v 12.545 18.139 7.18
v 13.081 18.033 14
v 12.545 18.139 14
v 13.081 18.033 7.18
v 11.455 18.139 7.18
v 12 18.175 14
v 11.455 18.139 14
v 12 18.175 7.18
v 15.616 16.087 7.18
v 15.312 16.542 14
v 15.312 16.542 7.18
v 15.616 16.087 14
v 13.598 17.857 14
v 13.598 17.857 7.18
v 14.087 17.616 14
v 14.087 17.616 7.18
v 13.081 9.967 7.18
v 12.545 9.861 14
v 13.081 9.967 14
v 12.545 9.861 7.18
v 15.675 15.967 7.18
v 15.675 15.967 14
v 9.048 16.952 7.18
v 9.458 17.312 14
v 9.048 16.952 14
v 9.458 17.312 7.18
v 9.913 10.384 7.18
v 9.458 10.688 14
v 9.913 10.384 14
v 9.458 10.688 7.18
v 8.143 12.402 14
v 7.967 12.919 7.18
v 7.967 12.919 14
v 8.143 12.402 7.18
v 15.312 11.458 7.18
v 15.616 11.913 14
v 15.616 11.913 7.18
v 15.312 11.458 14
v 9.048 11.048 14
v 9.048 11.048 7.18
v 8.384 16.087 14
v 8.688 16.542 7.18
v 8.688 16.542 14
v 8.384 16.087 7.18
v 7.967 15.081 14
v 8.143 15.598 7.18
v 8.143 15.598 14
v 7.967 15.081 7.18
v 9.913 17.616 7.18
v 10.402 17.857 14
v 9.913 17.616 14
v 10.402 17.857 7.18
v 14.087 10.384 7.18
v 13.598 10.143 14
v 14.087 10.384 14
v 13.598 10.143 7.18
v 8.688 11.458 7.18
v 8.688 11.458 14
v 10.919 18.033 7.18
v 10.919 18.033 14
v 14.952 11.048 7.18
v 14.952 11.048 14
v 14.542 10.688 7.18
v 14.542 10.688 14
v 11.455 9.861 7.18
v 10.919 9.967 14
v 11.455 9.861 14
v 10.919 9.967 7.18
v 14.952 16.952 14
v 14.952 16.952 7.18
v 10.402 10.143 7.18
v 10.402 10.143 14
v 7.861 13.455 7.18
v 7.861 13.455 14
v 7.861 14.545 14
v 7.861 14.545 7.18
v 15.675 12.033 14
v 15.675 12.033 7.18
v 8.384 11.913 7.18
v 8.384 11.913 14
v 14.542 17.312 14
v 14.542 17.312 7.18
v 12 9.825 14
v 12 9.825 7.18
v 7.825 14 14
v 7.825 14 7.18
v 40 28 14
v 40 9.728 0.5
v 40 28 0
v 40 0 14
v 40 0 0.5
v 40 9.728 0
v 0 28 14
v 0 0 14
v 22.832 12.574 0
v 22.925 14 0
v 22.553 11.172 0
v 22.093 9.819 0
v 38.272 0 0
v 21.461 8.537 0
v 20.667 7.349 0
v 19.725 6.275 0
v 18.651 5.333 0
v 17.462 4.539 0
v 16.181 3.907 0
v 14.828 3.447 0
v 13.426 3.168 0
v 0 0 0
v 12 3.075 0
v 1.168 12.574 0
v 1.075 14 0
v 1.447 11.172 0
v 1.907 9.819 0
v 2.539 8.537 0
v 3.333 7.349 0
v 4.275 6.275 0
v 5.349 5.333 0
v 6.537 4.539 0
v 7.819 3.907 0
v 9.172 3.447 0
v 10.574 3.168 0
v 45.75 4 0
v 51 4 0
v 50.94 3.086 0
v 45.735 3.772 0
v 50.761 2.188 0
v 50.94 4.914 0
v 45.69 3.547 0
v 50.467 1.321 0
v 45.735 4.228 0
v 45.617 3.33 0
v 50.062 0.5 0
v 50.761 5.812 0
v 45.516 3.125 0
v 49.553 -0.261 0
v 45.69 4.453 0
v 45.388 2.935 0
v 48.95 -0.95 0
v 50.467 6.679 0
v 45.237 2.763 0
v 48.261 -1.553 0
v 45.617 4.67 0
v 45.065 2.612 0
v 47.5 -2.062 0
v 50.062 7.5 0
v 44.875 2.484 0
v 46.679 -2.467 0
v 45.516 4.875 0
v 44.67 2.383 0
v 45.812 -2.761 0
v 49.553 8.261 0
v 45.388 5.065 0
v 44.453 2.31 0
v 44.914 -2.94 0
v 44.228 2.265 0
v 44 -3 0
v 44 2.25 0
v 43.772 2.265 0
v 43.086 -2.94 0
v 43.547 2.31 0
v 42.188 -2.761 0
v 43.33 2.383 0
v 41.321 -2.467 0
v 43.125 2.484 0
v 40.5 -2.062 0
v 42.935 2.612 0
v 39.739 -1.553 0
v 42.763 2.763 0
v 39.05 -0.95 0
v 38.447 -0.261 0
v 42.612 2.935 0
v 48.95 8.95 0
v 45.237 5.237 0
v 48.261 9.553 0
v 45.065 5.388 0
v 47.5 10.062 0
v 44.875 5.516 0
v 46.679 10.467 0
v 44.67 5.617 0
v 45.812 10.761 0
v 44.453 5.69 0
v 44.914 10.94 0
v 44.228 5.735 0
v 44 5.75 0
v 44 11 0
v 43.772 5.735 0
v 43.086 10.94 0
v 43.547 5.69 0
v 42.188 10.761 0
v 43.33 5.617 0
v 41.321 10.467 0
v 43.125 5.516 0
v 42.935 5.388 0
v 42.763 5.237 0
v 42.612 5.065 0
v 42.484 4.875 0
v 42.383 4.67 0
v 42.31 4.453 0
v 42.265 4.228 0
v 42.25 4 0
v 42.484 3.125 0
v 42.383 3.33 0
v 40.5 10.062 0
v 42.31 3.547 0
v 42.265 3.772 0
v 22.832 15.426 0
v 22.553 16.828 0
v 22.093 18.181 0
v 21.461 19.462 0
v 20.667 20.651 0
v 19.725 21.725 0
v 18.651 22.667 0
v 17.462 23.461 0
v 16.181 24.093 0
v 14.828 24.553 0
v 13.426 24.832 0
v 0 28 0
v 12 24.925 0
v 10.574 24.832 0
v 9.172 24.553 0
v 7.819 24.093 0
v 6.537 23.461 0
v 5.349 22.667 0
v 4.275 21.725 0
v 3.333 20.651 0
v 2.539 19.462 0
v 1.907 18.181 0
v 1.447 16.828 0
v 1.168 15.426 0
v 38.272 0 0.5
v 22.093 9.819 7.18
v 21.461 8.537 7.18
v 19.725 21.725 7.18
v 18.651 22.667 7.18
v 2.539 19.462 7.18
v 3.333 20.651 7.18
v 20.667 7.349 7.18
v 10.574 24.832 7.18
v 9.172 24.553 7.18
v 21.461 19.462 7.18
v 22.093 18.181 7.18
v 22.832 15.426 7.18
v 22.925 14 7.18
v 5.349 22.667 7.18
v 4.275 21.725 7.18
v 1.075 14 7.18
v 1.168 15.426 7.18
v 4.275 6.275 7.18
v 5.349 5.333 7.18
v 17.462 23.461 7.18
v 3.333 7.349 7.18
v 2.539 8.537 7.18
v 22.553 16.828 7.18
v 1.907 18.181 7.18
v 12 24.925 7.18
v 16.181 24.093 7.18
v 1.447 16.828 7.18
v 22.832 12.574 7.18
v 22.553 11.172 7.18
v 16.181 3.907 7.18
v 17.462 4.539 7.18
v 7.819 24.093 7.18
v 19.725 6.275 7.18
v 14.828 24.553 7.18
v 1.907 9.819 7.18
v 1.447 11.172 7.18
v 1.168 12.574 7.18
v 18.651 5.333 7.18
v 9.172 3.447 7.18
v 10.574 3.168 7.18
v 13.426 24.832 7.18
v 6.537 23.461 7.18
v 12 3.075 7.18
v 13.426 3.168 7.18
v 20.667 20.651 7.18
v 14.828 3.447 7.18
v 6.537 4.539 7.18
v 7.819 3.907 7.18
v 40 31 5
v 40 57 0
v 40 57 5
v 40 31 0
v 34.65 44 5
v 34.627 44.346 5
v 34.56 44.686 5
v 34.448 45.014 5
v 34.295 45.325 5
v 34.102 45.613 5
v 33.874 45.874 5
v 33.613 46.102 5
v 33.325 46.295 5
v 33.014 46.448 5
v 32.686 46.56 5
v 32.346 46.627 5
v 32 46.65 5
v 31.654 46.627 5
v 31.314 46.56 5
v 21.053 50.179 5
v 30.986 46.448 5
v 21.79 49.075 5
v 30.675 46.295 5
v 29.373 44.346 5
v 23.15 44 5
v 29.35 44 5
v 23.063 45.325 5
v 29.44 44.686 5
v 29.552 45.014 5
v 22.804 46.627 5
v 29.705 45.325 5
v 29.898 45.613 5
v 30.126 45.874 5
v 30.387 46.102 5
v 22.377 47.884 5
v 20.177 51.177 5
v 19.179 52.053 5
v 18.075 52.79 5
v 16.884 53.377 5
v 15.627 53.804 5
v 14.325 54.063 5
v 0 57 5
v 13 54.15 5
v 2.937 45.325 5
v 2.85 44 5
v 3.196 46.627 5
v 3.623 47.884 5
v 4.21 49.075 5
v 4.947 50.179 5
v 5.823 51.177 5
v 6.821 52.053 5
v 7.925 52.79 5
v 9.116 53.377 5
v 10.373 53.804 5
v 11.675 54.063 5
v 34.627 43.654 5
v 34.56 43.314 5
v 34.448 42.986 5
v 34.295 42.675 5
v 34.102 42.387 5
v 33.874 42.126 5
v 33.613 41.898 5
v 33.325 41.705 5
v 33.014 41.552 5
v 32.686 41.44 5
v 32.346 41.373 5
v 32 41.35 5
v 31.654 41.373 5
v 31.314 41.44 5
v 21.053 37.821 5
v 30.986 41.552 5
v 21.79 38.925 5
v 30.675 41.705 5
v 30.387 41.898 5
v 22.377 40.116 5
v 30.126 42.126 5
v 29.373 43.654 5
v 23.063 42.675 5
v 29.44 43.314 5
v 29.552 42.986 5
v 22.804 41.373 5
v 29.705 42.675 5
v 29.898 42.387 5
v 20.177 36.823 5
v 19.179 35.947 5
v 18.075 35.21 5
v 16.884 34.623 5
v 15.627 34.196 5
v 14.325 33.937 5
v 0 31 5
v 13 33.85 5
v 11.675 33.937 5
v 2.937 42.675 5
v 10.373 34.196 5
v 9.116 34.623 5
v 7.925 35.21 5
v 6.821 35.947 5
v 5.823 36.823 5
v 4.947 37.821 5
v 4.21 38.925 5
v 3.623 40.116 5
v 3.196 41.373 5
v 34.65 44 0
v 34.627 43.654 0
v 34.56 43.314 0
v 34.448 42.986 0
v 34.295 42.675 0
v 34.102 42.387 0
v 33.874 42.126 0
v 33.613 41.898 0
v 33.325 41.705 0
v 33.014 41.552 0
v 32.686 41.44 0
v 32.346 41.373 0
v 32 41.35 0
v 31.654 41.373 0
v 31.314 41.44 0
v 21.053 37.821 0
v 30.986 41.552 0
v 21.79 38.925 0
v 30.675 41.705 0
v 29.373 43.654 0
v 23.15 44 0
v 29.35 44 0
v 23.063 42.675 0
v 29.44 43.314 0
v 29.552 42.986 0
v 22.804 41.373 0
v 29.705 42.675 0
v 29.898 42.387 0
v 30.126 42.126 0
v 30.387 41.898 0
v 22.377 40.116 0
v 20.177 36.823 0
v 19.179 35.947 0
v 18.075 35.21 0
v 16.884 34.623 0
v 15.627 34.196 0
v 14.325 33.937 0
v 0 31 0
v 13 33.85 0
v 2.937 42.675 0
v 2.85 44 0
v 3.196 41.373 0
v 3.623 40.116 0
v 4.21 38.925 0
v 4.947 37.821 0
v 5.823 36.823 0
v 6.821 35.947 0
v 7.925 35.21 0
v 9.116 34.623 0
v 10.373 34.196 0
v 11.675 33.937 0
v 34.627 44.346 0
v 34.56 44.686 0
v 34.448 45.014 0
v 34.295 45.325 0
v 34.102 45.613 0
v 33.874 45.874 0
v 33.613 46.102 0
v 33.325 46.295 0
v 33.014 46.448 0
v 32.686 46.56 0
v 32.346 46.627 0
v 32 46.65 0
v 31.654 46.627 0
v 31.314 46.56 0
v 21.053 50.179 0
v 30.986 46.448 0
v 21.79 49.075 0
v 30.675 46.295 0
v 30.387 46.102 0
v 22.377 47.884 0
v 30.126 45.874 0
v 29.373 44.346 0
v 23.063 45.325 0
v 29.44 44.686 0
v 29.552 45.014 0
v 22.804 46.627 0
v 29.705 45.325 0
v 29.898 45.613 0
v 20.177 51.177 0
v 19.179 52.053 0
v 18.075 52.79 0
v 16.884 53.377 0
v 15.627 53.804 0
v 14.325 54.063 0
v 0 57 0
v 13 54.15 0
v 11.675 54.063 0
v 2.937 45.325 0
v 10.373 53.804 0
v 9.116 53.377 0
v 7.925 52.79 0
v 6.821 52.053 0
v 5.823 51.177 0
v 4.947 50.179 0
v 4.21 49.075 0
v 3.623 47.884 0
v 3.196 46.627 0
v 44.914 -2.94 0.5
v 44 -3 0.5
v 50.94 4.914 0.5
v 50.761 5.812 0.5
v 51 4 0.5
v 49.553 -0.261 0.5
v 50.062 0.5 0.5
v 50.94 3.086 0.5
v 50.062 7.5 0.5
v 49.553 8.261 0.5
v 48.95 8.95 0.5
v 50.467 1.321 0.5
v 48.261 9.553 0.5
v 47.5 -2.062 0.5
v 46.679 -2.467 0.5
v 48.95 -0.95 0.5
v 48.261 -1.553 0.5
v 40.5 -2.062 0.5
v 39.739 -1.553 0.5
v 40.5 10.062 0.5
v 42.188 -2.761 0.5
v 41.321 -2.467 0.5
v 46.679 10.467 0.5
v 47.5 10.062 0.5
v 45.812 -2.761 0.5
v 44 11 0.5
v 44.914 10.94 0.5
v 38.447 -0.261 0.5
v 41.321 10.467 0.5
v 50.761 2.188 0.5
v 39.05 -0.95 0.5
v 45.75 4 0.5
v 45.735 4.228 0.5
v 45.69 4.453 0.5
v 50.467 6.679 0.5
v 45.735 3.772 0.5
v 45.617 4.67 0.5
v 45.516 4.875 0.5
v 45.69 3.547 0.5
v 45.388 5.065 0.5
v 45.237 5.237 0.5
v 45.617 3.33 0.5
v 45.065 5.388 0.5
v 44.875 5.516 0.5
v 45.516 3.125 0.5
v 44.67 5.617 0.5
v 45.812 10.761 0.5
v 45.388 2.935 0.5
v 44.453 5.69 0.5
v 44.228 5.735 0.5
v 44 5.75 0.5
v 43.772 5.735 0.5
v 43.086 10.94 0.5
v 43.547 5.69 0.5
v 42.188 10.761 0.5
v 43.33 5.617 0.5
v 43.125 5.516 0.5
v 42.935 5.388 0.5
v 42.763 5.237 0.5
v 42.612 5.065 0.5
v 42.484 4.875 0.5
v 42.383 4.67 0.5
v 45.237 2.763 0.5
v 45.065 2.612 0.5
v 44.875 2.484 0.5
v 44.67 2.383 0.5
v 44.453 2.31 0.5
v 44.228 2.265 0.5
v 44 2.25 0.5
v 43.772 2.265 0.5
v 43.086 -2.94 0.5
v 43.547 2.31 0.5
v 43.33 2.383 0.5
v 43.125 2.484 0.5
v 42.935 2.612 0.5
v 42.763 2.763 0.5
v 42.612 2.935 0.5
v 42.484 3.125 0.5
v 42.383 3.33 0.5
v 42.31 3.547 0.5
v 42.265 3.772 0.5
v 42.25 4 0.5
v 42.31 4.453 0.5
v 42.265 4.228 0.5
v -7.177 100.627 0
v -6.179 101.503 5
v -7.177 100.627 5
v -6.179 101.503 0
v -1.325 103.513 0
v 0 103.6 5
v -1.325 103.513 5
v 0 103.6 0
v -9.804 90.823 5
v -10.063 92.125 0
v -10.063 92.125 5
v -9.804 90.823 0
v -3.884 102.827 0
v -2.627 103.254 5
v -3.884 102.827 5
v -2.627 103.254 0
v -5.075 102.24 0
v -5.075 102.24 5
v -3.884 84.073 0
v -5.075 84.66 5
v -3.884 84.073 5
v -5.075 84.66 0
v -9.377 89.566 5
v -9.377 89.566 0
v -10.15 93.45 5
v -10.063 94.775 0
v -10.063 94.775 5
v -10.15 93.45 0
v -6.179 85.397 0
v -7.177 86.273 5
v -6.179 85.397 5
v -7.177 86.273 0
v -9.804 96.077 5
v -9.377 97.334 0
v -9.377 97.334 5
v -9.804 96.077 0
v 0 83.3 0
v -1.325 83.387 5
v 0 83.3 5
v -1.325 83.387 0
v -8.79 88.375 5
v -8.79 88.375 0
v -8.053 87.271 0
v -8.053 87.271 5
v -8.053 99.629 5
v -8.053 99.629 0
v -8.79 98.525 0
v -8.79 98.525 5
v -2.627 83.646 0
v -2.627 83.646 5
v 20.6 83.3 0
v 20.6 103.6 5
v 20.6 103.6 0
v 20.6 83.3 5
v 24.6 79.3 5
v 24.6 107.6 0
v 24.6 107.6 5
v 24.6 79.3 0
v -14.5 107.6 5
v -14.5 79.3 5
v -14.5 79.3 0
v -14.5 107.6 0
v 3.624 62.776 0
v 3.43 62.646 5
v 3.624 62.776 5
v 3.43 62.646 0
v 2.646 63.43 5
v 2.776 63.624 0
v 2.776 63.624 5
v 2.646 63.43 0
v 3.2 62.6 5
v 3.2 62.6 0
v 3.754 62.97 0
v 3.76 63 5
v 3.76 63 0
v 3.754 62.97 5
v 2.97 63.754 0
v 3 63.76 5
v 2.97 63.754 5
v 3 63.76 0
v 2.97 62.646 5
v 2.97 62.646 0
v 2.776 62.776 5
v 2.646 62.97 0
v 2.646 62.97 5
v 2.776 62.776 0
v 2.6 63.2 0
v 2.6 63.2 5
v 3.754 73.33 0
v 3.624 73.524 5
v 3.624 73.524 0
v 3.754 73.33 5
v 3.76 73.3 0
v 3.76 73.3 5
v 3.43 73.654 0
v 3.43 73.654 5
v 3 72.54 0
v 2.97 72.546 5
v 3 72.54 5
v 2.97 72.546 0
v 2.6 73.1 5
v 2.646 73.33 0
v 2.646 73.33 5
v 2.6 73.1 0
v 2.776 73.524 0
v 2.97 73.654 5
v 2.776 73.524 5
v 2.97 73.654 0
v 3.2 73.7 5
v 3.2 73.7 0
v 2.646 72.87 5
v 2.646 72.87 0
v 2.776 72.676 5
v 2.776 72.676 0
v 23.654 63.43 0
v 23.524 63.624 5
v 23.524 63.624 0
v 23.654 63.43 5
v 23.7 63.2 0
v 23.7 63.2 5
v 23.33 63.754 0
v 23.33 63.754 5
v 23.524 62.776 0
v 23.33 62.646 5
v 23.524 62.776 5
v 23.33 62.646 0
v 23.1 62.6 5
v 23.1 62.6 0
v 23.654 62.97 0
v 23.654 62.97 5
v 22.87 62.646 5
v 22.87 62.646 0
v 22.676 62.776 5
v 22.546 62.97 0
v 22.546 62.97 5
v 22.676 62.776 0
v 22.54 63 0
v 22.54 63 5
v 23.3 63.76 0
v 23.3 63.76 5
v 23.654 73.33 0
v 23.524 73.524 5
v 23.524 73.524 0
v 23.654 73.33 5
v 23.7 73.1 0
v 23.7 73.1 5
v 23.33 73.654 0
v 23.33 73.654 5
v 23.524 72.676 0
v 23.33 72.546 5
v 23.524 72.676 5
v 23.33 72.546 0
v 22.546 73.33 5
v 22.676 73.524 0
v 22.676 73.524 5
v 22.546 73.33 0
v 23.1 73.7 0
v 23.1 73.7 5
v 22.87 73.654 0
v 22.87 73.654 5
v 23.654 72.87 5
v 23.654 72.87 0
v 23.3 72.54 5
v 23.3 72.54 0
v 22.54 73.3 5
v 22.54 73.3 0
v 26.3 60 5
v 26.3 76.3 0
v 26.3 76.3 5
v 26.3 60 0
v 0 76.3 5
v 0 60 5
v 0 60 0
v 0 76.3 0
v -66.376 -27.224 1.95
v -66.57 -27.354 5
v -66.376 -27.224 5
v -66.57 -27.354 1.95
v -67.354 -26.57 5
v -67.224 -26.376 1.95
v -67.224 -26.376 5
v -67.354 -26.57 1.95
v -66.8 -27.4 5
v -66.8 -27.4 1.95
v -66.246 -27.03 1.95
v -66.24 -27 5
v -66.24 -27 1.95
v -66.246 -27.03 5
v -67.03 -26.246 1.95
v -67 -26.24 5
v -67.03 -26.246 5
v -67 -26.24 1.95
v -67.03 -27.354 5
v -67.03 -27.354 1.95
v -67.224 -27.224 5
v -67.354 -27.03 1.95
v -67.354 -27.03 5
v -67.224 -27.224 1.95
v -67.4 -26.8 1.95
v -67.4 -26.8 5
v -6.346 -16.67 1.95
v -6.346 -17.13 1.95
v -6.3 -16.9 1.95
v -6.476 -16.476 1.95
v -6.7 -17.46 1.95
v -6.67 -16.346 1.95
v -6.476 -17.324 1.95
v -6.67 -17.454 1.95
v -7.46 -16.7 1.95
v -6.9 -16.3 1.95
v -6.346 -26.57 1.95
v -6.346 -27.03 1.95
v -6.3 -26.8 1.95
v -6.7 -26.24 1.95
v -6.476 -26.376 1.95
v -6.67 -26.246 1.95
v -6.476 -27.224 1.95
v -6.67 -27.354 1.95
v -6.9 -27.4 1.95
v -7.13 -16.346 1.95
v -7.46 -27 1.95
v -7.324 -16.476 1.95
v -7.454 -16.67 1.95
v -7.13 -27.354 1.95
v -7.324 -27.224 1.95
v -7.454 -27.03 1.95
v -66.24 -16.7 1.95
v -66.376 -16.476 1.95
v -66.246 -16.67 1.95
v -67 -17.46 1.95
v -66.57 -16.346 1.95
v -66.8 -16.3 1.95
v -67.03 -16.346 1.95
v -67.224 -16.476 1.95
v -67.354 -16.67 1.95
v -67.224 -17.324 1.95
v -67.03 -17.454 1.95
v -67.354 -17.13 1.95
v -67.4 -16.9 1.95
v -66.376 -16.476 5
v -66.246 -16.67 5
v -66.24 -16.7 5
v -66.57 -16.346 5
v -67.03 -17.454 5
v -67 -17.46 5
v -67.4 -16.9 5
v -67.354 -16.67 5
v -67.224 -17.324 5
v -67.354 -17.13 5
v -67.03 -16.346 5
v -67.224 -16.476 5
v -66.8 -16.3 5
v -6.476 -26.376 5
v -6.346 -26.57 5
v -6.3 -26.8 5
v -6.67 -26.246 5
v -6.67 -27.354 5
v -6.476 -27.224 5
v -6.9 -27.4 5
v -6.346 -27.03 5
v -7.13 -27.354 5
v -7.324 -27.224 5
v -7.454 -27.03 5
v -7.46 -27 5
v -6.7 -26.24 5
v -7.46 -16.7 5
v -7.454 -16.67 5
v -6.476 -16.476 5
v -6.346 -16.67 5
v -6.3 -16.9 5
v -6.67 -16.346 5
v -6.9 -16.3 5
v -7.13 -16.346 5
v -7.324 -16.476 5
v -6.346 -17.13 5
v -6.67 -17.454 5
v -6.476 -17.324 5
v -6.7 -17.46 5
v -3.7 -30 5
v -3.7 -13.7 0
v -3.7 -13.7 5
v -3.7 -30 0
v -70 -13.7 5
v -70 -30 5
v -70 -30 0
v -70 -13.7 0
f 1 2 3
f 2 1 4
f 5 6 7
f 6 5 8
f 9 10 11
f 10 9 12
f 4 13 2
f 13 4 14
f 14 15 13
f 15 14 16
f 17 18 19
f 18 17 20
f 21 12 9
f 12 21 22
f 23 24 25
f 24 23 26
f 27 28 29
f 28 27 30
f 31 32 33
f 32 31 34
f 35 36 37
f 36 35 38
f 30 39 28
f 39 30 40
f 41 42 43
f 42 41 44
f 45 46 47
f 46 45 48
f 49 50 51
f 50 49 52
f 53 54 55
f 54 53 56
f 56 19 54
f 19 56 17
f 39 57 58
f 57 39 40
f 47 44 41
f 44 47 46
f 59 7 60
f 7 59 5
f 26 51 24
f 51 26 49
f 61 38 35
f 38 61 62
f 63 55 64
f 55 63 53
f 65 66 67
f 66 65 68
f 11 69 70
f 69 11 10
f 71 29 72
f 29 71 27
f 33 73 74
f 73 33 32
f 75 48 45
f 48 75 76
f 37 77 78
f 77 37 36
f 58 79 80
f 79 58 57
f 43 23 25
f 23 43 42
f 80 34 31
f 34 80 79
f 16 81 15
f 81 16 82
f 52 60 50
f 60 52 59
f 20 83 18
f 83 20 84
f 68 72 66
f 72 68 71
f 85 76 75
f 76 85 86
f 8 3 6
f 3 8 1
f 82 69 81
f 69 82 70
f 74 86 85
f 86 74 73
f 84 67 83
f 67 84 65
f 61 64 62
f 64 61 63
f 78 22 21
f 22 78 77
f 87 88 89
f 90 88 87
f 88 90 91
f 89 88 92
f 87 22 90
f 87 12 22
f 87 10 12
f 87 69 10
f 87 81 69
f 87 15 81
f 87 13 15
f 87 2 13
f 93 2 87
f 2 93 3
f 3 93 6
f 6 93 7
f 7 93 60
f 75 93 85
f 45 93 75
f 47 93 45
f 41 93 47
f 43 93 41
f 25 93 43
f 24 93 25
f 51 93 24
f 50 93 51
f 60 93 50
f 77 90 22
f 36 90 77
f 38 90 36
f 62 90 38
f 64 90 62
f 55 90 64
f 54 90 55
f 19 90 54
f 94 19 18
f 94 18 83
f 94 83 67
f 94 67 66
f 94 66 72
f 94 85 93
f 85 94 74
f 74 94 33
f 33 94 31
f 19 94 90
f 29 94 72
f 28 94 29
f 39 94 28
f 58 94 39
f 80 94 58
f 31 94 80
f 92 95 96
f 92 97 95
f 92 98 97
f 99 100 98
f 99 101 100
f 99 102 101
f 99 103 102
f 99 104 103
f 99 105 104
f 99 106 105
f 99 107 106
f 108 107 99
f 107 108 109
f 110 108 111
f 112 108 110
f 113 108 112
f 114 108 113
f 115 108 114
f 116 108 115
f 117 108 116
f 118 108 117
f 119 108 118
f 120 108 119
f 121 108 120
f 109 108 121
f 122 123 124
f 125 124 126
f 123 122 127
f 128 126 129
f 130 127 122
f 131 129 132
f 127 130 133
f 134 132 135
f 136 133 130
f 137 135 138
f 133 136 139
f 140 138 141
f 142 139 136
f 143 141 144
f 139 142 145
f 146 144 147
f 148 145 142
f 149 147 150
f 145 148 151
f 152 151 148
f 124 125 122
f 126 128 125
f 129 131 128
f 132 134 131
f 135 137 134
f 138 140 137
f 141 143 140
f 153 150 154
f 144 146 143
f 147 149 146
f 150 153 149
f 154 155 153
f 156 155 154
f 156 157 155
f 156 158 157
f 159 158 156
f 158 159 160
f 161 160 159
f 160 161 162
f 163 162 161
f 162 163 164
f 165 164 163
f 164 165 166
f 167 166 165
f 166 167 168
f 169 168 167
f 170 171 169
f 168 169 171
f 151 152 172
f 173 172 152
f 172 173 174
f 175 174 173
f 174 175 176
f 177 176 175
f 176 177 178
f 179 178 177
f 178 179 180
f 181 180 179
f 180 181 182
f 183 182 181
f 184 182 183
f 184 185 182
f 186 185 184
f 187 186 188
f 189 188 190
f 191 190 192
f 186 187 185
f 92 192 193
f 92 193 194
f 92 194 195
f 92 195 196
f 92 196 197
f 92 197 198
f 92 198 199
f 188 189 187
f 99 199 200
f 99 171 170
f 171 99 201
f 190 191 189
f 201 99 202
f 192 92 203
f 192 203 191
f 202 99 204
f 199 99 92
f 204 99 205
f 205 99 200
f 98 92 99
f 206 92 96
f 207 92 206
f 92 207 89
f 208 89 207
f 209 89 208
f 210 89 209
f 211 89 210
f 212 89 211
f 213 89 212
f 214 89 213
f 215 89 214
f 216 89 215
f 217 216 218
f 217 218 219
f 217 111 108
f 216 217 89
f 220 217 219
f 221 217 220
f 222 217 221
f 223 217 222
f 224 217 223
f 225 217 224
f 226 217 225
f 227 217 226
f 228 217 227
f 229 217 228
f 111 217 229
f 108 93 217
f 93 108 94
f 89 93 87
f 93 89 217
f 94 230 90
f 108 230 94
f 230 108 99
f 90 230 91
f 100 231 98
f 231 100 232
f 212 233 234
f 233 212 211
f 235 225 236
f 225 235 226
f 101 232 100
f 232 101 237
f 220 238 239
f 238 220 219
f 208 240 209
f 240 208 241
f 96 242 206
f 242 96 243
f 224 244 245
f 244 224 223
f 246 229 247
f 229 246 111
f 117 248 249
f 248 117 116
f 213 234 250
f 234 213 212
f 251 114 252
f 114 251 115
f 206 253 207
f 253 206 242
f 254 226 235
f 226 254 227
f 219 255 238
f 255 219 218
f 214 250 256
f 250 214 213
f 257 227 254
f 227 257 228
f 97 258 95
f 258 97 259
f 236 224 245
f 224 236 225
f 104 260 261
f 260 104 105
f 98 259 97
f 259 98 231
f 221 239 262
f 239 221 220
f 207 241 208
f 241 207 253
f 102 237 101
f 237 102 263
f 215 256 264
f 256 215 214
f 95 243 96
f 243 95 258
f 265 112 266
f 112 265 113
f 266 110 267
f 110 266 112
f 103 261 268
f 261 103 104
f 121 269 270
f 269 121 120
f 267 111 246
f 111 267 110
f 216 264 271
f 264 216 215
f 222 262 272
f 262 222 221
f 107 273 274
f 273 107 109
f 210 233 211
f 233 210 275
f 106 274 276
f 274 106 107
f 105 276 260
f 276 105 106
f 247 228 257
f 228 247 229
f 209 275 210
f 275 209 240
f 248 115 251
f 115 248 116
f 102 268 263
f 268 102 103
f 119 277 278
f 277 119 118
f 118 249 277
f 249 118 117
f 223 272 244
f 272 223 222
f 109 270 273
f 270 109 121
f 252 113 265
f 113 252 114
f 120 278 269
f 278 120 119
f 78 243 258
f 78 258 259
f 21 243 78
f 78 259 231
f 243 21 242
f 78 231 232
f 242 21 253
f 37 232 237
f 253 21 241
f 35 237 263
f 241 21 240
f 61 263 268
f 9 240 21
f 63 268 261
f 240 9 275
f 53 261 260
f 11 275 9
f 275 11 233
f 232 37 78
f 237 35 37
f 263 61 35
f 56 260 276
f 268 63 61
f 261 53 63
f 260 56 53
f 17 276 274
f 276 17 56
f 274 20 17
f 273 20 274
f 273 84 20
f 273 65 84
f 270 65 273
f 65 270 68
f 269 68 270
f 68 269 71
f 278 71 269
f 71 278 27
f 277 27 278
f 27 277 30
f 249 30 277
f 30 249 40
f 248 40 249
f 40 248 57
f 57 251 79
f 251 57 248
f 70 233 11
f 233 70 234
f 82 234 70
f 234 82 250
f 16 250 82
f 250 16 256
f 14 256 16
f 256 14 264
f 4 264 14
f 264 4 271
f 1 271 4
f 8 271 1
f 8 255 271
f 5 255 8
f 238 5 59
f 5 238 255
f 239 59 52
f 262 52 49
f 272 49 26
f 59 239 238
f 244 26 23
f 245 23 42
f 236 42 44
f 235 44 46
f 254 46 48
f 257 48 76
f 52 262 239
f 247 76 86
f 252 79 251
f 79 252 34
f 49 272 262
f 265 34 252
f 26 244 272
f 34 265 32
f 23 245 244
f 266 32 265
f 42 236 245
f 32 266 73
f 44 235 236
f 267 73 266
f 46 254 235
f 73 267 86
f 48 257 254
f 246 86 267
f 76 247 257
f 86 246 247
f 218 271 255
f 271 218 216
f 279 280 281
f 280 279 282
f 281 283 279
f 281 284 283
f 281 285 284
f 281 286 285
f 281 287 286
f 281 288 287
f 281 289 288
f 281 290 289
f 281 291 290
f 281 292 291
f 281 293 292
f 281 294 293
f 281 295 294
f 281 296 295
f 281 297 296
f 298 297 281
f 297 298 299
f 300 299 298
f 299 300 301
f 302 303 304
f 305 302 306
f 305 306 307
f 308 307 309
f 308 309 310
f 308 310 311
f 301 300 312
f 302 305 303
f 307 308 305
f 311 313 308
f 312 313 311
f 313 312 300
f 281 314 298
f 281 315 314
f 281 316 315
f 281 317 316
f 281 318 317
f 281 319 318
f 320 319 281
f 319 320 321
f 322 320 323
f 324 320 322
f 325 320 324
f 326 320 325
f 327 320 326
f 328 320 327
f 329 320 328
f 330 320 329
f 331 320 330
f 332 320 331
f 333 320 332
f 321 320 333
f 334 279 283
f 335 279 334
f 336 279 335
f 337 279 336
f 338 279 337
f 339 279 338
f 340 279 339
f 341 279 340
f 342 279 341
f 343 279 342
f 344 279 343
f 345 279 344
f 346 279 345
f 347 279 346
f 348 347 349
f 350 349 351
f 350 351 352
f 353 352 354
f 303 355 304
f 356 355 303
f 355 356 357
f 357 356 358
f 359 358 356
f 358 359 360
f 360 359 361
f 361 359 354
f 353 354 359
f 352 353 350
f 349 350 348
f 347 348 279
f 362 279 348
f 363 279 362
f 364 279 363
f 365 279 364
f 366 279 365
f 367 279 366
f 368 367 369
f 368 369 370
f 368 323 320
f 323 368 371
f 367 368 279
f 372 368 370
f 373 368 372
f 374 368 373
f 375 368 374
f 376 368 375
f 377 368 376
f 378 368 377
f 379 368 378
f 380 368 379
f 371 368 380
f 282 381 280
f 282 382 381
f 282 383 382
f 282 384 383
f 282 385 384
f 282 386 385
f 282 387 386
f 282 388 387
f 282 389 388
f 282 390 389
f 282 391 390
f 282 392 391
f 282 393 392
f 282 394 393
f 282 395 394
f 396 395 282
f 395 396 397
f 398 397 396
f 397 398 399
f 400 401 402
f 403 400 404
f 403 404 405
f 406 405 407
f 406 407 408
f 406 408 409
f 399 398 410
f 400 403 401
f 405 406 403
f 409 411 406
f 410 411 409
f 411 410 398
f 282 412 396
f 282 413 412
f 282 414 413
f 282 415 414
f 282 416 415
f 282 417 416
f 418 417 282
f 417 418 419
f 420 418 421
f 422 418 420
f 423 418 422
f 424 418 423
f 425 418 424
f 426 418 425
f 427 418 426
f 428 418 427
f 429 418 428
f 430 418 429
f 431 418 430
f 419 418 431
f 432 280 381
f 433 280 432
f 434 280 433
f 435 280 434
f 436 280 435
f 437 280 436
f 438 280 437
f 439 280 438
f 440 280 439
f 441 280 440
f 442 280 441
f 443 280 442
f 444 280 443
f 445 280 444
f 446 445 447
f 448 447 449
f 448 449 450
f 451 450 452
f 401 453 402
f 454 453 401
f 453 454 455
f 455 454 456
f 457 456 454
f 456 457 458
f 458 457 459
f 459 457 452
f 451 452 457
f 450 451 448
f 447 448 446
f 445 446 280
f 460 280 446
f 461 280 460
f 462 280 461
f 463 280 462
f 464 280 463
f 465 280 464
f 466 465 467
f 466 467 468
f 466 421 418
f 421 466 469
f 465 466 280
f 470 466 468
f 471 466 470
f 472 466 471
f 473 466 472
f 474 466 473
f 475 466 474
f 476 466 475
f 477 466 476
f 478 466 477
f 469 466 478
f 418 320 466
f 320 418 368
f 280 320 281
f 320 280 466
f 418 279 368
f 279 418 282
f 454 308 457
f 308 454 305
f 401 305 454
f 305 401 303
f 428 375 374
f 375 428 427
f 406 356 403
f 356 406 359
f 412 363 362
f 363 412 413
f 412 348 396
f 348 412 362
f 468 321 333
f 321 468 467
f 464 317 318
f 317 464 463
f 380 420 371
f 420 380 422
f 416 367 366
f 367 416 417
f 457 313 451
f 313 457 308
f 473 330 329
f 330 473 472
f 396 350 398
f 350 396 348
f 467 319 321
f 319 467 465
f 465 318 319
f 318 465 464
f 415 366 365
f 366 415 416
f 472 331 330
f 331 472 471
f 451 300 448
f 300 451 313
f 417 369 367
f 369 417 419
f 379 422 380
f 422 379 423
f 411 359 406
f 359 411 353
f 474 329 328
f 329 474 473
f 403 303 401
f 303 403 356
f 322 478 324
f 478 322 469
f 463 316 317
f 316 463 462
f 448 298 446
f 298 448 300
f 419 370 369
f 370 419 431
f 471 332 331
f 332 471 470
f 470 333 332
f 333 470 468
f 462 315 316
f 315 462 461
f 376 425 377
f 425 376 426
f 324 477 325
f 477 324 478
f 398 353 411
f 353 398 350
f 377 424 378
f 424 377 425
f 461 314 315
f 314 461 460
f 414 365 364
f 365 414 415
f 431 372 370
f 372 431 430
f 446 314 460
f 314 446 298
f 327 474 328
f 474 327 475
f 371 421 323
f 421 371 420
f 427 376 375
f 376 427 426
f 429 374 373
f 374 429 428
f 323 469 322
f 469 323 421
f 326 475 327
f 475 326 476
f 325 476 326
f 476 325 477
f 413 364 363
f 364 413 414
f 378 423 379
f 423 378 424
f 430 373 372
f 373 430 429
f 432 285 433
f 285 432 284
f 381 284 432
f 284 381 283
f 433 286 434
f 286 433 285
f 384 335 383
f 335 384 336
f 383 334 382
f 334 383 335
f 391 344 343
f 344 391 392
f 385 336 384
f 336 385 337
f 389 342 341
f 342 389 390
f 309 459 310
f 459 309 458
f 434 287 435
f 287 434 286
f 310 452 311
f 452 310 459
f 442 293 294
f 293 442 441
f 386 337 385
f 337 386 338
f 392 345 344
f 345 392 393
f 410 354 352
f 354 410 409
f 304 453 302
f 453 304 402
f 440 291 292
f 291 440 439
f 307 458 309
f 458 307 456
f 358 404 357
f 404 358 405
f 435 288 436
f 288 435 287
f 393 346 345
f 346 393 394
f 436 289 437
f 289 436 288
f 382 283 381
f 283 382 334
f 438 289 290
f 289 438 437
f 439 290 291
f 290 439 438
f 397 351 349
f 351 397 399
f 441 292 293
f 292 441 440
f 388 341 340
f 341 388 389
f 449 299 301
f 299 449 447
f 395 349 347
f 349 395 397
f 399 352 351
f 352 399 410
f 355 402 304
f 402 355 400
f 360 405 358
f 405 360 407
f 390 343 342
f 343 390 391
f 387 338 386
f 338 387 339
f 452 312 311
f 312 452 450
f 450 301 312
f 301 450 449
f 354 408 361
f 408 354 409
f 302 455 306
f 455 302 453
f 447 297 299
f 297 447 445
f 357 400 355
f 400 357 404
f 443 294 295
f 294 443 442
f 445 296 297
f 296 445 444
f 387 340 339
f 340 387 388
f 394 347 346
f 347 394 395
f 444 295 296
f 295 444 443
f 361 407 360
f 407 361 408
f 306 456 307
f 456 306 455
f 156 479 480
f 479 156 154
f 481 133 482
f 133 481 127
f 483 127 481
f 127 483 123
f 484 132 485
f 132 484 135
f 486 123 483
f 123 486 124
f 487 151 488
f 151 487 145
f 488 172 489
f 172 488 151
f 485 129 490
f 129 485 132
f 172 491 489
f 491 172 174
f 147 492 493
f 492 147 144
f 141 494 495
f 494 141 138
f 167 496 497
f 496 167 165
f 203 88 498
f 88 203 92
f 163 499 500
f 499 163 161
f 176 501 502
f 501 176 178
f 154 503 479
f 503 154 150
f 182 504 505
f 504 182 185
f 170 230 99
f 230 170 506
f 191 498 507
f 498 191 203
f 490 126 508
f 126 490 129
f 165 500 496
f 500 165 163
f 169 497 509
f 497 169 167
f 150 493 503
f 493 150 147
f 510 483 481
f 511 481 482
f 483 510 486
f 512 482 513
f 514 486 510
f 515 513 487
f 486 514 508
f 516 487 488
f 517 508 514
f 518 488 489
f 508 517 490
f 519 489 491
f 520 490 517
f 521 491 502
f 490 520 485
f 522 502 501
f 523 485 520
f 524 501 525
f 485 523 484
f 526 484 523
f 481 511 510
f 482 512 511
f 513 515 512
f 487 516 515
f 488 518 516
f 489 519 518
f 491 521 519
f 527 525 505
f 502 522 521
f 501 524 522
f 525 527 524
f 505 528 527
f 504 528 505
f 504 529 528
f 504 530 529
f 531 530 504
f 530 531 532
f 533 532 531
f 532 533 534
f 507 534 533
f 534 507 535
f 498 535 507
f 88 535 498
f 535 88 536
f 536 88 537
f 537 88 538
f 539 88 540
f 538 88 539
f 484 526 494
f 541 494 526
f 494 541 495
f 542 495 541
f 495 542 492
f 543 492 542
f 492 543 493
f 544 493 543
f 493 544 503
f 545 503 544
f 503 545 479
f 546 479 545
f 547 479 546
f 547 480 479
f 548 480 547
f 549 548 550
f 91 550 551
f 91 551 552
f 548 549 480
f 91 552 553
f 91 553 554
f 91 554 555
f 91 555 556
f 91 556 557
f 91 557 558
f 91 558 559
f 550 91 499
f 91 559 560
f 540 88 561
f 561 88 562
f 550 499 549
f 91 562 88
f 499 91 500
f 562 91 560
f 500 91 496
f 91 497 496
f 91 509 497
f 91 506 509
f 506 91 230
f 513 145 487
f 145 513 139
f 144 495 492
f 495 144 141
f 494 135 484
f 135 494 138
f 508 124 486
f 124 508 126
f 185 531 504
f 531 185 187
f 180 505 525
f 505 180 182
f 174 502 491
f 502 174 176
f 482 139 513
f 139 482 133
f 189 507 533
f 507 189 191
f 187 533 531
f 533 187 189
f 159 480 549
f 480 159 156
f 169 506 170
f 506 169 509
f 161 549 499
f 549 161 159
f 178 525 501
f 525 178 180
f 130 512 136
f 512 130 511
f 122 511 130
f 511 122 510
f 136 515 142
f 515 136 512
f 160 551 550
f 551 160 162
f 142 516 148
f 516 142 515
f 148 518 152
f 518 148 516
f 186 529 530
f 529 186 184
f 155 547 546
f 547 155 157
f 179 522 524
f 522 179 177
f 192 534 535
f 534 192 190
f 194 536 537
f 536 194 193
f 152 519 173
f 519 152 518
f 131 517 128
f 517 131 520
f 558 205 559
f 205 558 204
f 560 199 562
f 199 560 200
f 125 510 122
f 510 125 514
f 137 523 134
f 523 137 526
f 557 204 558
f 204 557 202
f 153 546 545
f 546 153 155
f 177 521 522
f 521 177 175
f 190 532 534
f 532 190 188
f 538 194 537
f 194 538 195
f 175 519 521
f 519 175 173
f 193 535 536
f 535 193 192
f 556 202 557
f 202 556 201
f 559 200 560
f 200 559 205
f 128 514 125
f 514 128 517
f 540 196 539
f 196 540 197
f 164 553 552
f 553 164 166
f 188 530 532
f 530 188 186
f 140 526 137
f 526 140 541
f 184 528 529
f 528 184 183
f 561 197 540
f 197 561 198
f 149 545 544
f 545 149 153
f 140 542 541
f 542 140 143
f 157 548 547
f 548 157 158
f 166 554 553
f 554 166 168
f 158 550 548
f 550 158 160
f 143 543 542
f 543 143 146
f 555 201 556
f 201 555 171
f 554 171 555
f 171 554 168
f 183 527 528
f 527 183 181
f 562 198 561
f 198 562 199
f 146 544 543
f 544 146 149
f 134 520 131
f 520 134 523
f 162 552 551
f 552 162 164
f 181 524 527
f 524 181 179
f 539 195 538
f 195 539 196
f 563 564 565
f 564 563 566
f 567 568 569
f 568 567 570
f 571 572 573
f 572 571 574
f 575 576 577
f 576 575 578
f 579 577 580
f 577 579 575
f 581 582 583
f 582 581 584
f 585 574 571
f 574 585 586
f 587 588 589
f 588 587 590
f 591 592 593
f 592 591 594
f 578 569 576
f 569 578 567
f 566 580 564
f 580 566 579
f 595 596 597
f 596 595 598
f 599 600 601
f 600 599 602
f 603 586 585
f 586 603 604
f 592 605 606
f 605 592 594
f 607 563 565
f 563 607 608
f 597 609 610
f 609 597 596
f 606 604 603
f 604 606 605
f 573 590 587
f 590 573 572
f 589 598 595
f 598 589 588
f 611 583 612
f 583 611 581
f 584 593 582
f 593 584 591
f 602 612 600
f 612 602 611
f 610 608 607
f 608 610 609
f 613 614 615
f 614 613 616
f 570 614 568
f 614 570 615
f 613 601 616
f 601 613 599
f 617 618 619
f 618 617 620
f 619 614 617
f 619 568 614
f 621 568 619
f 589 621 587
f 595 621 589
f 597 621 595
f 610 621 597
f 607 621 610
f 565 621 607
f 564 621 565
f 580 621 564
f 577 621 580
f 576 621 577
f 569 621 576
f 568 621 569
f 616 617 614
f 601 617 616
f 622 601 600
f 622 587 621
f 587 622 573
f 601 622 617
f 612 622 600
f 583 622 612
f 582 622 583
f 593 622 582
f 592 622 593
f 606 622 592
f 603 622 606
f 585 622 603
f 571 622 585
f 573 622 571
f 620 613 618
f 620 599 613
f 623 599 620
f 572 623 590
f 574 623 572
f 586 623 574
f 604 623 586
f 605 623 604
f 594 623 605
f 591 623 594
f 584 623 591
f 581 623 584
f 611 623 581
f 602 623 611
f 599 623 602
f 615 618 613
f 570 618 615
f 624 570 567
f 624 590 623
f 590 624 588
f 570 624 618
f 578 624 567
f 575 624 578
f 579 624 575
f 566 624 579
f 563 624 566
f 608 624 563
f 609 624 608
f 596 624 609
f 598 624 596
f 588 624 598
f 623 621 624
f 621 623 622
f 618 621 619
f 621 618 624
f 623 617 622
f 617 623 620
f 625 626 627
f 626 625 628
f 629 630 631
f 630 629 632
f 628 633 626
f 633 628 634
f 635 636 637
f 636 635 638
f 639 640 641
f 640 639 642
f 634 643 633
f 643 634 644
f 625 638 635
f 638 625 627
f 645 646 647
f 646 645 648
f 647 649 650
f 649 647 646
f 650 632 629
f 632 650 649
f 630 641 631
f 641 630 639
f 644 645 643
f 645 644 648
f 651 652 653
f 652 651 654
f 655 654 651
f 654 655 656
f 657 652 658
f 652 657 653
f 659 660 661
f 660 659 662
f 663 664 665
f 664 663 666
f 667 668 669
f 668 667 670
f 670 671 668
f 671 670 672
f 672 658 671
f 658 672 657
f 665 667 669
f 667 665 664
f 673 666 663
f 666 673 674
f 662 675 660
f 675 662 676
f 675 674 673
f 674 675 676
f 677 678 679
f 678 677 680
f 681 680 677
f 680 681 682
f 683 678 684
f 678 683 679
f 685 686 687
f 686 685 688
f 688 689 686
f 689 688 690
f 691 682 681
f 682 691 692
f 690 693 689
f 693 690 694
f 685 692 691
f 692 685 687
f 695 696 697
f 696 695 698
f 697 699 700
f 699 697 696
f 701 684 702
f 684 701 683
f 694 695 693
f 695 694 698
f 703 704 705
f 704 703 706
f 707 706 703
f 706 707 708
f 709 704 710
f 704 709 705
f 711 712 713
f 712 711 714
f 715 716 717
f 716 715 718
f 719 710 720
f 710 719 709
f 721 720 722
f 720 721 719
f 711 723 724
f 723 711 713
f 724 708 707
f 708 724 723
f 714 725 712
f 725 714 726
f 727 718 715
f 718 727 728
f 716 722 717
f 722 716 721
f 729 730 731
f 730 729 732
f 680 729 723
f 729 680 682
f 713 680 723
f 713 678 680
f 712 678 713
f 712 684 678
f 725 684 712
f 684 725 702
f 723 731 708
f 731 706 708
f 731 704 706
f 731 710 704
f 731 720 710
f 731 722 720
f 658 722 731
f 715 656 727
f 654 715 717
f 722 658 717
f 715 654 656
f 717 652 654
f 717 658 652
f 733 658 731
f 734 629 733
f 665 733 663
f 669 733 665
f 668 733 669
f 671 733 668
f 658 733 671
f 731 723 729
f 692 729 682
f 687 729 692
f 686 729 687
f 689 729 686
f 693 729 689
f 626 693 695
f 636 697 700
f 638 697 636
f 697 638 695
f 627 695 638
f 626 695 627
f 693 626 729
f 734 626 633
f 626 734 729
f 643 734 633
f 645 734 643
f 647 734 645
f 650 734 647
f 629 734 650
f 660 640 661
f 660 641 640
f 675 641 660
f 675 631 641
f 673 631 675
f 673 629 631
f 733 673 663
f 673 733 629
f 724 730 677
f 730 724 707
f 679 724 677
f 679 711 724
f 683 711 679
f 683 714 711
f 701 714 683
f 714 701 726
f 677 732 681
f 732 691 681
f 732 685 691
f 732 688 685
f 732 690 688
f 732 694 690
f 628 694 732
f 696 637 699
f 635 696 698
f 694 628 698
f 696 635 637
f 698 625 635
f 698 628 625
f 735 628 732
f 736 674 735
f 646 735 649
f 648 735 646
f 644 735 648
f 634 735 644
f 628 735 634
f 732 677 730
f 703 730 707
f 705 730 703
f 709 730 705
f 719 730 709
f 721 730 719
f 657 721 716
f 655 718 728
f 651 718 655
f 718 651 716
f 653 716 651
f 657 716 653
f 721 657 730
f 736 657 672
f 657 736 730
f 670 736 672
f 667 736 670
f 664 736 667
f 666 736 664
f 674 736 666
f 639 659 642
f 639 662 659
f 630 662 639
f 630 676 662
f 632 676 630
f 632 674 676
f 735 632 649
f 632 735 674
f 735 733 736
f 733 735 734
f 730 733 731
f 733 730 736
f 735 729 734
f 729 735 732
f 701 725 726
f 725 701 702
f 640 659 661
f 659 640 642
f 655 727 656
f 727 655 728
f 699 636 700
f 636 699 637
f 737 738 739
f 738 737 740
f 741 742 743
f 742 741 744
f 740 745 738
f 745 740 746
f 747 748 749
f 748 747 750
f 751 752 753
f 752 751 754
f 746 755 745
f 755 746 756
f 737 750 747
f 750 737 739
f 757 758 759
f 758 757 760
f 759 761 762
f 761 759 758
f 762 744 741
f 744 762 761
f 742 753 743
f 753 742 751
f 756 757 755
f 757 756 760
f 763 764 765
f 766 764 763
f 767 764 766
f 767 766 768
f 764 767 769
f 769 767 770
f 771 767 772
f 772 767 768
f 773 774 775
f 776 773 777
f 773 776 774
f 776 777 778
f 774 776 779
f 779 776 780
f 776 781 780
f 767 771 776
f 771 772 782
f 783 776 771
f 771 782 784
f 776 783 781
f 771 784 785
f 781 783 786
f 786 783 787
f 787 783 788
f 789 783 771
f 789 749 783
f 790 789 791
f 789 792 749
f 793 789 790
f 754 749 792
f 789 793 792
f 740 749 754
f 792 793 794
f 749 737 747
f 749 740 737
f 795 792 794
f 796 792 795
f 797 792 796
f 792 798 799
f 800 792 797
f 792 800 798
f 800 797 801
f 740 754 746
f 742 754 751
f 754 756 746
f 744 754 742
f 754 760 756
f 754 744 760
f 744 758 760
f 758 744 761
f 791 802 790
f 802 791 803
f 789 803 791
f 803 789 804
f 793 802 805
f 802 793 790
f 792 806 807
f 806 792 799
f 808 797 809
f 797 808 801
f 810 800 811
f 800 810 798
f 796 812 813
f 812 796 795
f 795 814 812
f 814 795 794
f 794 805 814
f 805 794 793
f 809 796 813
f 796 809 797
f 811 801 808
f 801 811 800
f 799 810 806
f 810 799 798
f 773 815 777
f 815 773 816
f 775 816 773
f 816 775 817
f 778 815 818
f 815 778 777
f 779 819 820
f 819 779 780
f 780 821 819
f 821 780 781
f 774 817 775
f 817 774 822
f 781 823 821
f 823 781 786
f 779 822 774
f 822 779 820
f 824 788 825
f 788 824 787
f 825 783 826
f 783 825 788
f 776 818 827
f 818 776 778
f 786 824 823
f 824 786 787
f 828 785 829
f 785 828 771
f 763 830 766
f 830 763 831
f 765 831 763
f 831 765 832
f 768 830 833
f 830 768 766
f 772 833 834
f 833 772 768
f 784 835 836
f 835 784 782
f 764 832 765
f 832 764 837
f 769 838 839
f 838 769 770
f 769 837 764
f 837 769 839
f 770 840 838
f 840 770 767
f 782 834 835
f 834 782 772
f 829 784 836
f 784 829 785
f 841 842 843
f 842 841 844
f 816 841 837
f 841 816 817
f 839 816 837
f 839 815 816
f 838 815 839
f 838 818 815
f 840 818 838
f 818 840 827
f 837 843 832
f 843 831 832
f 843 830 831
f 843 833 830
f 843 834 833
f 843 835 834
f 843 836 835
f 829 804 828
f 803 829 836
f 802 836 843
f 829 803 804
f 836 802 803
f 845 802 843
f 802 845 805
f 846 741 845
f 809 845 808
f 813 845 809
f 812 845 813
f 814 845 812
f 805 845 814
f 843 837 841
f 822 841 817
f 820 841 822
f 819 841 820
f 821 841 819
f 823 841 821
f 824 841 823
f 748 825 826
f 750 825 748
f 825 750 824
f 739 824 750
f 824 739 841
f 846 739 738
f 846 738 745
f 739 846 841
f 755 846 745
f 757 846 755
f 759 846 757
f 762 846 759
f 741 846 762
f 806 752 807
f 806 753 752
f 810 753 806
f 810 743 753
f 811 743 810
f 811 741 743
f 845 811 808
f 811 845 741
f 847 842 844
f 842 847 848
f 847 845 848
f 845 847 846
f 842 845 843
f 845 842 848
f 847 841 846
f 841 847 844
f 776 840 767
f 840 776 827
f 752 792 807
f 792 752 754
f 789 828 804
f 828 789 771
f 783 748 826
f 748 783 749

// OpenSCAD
// Gen-CX — fit coupon: O20/O5 THROUGH pockets at carrier thickness (test on a steel offcut), 608 seat,
// D-flat bore, gap shim, and one bobbin-bay slice (bobbin footprint + bay_clear) to test former fit.
include <parameters.scad>;
$fn = 48;
// D-flat keyed bore: flat faces +X (angle 0 = magnet pocket 0 = index notch)
module dflat_bore(h) {
    intersection() {
        cylinder(d=shaft_bore, h=h);
        translate([-shaft_bore, -shaft_bore, 0]) cube([shaft_bore + dflat_x, 2*shaft_bore, h]);
    }
}
module sector_2d(r_in, r_out, ang) {
    polygon([
        for (a = [-ang/2 : ang/24 : ang/2]) [r_in*cos(a), r_in*sin(a)],
        for (a = [ang/2 : -ang/24 : -ang/2]) [r_out*cos(a), r_out*sin(a)]
    ]);
}
module footprint_2d() { offset(r=wall) sector_2d(coil_id_r, coil_od_r, span_deg); }
module hub_2d()       { offset(delta=-coil_core_inset) sector_2d(coil_id_r, coil_od_r, span_deg); }

block_w = 40; block_d = 28; block_h = 14;
difference() {
    cube([block_w, block_d, block_h]);
    translate([12, block_d/2, -0.02]) cylinder(d=bearing_d, h=bearing_h);
    translate([12, block_d/2, -0.1]) dflat_bore(block_h + 1);
}
translate([0, block_d + 3, 0]) difference() {
    cube([40, 26, carrier_thick]);
    translate([13, 13, -0.1]) cylinder(d=large_pocket_d, h=carrier_thick + 0.2);
    translate([32, 13, -0.1]) cylinder(d=small_pocket_d, h=carrier_thick + 0.2);
}
translate([block_w + 4, 4, 0])
    difference() {
        cylinder(d=spacer_pad_od, h=gap_spacer_h);
        translate([0, 0, -0.1]) cylinder(d=spacer_pad_id, h=gap_spacer_h + 0.2);
    }
// KEYHOLE pole pocket test (2026-10-18): O20 disc pocket + N42 20x10x5 block pocket merged (hull), as on the arcs.
// Drop a disc and a block in: they must push each other onto the two far walls and sit flat. Block pocket has corner reliefs.
translate([0, block_d + 3 + 26 + 3 + block_radial + block_pocket_clear + 6 + 3 + max(block_tangential, large_pocket_d) / 2 + 4, 0]) difference() {
    translate([-14.5, -(max(block_tangential, large_pocket_d) / 2 + 4), 0]) cube([14.5 + abs(block_R_list[0] - R_large) + block_radial / 2 + 4, max(block_tangential, large_pocket_d) + 8, carrier_thick]);
    translate([0, 0, -0.1]) {
        translate([disc_pocket_shift * sign(block_R_list[0] - R_large), 0, 0]) cylinder(d=large_pocket_d, h=carrier_thick + 0.2);
        translate([disc_pocket_shift * sign(block_R_list[0] - R_large), -(block_tangential + block_pocket_clear)/2, 0])
            cube([abs(block_R_list[0] - R_large) - abs(block_pocket_shift) + (block_radial + block_pocket_clear)/2 - disc_pocket_shift * sign(block_R_list[0] - R_large), block_tangential + block_pocket_clear, carrier_thick + 0.2]);
    }
}
// N42 20x10x5 BLOCK through-pocket test (block + block_pocket_clear, 1.2 mm corner reliefs), 2026-10-16
translate([0, block_d + 3 + 26 + 3, 0]) difference() {
    cube([block_tangential + block_pocket_clear + 6, block_radial + block_pocket_clear + 6, carrier_thick]);
    translate([3, 3, -0.1]) cube([block_tangential + block_pocket_clear, block_radial + block_pocket_clear, carrier_thick + 0.2]);
    for (x = [3.2, 3 + block_tangential + block_pocket_clear - 0.2], y = [3.2, 3 + block_radial + block_pocket_clear - 0.2])
        translate([x, y, -0.1]) cylinder(d=1.2, h=carrier_thick + 0.2, $fn=16);
}
// N52 60x10x3 BAR blind-pocket test (2026-10-21): bar + 0.3 mm, depth block2_pocket_depth: the bar face must sit flush with the top.
translate([-70, -30, 0]) difference() {
    cube([block2_tangential + block2_pocket_clear + 6, block2_radial + block2_pocket_clear + 6, carrier_thick]);
    translate([3, 3, carrier_thick - block2_pocket_depth]) cube([block2_tangential + block2_pocket_clear, block2_radial + block2_pocket_clear, carrier_thick]);
    for (x = [3.2, 3 + block2_tangential + block2_pocket_clear - 0.2], y = [3.2, 3 + block2_radial + block2_pocket_clear - 0.2])
        translate([x, y, carrier_thick - block2_pocket_depth]) cylinder(d=1.2, h=carrier_thick, $fn=16);
}
